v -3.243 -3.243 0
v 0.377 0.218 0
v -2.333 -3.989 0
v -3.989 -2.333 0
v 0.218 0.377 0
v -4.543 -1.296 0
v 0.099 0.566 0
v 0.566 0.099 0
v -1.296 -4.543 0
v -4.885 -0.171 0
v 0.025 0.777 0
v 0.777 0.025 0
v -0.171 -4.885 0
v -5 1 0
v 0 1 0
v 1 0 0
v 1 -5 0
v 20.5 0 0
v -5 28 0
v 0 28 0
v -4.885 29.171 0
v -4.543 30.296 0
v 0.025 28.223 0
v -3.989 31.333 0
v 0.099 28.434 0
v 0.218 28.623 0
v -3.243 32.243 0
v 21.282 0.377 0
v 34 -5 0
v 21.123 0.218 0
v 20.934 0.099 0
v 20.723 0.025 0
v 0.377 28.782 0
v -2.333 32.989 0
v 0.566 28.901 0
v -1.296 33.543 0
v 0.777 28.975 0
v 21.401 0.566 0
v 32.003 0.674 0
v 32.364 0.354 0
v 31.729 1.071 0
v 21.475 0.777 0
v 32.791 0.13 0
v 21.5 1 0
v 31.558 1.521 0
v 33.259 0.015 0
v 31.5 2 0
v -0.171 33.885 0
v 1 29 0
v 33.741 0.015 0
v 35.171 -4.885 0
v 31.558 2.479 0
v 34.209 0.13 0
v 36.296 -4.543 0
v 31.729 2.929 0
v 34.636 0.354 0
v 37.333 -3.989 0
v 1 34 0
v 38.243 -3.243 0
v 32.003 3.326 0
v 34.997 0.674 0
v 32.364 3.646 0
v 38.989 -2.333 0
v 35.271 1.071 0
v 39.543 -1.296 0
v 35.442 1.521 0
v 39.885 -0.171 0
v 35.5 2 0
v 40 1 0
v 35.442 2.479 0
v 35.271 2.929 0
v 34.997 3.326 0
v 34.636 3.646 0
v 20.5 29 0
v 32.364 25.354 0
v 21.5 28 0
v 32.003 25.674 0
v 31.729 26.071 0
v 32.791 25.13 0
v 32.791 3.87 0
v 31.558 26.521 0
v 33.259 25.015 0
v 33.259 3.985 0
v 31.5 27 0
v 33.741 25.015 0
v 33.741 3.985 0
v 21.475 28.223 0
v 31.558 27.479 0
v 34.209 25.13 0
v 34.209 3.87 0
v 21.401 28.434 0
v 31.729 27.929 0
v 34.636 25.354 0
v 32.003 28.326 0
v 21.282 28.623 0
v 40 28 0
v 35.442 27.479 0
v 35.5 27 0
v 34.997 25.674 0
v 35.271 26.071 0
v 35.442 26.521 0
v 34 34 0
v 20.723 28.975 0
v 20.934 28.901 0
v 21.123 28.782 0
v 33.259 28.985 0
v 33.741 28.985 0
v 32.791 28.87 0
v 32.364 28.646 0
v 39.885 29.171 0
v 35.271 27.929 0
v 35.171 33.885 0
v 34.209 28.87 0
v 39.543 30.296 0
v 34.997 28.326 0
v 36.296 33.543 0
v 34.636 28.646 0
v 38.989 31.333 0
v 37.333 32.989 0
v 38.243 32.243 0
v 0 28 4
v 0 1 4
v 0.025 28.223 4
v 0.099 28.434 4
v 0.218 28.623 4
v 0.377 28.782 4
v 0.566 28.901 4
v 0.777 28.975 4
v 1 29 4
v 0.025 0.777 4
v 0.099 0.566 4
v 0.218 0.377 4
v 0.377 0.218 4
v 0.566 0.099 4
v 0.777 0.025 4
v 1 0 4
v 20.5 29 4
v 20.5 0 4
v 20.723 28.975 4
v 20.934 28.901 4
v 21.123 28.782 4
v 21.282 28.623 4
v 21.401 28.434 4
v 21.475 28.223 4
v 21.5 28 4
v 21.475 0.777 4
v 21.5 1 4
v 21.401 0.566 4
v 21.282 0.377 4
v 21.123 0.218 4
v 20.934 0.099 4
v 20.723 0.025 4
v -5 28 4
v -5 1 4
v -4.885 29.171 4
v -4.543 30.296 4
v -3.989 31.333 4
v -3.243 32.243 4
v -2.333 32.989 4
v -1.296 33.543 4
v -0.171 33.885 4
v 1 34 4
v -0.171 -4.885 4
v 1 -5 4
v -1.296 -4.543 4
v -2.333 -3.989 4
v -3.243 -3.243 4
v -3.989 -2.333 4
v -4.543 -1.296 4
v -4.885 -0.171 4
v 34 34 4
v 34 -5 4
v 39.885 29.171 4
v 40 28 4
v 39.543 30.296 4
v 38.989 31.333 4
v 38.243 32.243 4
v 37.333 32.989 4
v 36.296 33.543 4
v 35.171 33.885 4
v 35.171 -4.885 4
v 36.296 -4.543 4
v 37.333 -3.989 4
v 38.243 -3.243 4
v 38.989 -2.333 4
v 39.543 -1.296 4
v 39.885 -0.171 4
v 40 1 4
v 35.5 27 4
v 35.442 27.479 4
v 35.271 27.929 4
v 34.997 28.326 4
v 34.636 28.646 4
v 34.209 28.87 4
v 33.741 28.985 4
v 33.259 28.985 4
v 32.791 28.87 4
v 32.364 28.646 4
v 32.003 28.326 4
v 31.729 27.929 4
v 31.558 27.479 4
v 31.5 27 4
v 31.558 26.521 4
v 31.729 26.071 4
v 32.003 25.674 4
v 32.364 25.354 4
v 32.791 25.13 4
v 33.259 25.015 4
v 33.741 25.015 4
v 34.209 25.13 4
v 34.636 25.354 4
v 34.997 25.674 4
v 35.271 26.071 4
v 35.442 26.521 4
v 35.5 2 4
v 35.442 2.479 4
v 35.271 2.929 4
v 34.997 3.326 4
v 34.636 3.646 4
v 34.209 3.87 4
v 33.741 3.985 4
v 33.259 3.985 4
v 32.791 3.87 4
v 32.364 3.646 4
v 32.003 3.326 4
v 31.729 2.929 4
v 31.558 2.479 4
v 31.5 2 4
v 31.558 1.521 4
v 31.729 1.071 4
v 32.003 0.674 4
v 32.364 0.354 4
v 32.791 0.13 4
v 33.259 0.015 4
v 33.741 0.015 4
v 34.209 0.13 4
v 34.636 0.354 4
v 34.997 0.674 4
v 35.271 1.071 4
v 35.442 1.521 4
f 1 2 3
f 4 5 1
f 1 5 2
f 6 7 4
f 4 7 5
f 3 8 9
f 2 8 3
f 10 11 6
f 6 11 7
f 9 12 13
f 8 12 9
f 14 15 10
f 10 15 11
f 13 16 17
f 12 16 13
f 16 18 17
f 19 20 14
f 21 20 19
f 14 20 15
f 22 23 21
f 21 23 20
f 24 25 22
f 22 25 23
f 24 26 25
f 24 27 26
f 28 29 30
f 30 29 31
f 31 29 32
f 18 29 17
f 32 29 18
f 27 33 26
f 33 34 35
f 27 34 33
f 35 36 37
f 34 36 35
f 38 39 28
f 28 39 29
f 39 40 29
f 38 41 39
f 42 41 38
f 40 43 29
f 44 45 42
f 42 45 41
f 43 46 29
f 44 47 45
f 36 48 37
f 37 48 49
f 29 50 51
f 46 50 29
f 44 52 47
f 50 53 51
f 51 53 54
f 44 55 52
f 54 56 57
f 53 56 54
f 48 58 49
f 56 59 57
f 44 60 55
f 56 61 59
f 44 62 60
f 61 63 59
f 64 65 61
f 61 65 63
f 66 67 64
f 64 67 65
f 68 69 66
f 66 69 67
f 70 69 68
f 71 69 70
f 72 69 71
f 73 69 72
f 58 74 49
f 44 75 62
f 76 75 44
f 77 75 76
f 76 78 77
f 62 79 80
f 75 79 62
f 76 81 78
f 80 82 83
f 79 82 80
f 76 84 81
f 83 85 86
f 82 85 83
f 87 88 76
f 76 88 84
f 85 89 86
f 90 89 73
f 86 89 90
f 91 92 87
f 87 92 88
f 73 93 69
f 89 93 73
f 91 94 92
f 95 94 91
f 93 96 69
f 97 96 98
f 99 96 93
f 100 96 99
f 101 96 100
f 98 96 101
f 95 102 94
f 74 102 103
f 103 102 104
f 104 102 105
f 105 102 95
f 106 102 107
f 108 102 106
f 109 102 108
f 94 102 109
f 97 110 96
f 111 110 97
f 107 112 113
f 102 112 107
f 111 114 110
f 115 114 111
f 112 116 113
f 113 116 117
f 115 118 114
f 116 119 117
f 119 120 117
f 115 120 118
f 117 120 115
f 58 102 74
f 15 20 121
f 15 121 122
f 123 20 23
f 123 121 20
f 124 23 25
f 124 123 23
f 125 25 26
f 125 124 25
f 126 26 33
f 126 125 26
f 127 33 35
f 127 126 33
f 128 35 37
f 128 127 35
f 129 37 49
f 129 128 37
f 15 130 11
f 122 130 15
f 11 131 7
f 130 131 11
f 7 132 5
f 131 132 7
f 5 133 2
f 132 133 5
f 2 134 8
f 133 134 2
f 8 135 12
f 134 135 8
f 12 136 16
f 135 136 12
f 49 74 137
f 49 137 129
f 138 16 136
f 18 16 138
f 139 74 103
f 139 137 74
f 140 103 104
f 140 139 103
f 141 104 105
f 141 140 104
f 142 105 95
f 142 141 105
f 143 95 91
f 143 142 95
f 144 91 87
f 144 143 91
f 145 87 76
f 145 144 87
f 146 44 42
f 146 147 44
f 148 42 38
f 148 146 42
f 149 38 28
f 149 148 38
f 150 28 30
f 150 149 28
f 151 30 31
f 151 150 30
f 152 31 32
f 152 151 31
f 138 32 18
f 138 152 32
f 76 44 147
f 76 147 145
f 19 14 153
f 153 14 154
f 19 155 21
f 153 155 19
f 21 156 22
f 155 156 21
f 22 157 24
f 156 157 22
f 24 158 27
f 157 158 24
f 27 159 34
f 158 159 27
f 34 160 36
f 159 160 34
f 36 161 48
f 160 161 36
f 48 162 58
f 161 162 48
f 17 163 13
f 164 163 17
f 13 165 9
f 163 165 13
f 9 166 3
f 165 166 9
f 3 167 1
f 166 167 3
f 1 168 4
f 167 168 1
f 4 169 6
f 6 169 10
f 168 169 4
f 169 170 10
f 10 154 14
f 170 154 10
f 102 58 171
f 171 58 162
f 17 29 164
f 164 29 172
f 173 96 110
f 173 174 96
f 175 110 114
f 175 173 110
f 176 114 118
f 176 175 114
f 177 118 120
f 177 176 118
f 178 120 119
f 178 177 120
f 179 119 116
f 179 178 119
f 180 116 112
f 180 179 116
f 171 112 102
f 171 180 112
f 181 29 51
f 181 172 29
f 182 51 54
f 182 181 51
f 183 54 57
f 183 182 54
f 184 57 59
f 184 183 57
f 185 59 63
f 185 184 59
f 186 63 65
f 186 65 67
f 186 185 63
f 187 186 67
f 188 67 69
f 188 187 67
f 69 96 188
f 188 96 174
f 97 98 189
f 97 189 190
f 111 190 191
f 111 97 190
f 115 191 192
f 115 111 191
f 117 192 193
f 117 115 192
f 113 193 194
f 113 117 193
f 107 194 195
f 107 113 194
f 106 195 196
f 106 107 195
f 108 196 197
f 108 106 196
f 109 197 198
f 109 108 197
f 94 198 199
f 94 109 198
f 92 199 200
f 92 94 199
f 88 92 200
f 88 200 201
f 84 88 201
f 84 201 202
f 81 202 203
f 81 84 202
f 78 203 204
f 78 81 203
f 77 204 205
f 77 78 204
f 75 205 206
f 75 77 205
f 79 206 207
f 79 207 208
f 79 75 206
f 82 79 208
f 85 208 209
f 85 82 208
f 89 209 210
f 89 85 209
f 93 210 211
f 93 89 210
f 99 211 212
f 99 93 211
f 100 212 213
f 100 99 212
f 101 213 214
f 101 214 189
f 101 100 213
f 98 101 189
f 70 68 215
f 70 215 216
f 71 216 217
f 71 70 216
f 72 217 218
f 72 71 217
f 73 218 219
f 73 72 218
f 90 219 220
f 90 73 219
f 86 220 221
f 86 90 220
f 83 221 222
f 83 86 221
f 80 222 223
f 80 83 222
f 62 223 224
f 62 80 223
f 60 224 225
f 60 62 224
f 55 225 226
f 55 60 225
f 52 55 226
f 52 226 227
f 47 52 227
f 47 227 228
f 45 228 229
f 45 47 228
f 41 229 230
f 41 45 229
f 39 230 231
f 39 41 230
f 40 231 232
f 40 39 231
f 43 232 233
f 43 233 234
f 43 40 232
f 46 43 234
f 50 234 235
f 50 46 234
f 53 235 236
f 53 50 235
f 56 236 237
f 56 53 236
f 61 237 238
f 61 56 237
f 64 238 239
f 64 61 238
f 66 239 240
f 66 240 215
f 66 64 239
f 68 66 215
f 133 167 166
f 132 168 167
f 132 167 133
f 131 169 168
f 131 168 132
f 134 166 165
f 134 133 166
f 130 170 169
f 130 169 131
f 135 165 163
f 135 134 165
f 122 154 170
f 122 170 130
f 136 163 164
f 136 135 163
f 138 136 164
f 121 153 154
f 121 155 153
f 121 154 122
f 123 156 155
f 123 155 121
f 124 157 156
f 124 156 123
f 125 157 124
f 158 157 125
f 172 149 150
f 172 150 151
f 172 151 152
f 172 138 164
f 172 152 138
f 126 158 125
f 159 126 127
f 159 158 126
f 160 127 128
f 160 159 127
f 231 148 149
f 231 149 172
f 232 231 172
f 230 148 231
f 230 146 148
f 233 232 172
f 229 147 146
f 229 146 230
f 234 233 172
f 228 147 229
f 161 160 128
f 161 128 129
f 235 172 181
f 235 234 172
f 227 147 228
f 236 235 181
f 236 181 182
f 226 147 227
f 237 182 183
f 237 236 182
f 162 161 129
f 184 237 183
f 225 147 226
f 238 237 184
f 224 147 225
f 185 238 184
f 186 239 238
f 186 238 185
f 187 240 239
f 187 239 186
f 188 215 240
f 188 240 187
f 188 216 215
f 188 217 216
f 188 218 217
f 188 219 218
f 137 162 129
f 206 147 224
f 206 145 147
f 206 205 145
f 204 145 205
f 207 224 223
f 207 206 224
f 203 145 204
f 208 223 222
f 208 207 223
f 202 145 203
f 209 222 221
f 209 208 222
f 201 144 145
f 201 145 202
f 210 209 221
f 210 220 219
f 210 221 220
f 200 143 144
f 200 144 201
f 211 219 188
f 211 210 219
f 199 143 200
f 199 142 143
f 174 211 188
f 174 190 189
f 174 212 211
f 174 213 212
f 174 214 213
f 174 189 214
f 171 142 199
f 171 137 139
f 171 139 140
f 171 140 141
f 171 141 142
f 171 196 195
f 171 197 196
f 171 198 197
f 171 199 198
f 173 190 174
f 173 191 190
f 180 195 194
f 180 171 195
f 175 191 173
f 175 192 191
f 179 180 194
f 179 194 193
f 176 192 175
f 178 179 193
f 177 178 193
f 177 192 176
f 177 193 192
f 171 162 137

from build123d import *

# Parameters (mm, degrees)
SKETCH_W    = 45
SKETCH_H    = 39
SKETCH_R    = 2
SKETCH_W_2  = 21.5
SKETCH_H_2  = 29
PAD_DEPTH   = 4
FILLET_R    = 6
FILLET001_R = 6
FILLET002_R = 1


with BuildPart() as part:
    # Sketch → Pad (new body)
    with BuildSketch(Plane.XY):
        with Locations((17.5, 14.5)):
            Rectangle(SKETCH_W, SKETCH_H)
        with Locations((33.5, 2)):
            Circle(SKETCH_R, mode=Mode.SUBTRACT)
        with Locations((33.5, 27)):
            Circle(SKETCH_R, mode=Mode.SUBTRACT)
        with Locations((10.75, 14.5)):
            Rectangle(SKETCH_W_2, SKETCH_H_2, mode=Mode.SUBTRACT)
    extrude(amount=PAD_DEPTH)

    # Fillet
    fillet_edges = [part.edges().sort_by_distance(p)[0] for p in [
        (40, -5, 2),
        (-5, -5, 2),
    ]]
    fillet(fillet_edges, radius=FILLET_R)

    # Fillet001
    fillet001_edges = [part.edges().sort_by_distance(p)[0] for p in [
        (-5, 34, 2),
        (40, 34, 2),
    ]]
    fillet(fillet001_edges, radius=FILLET001_R)

    # Fillet002
    fillet002_edges = [part.edges().sort_by_distance(p)[0] for p in [
        (0, 29, 2),
        (0, 0, 2),
        (21.5, 0, 2),
        (21.5, 29, 2),
    ]]
    fillet(fillet002_edges, radius=FILLET002_R)


solid = part.part
